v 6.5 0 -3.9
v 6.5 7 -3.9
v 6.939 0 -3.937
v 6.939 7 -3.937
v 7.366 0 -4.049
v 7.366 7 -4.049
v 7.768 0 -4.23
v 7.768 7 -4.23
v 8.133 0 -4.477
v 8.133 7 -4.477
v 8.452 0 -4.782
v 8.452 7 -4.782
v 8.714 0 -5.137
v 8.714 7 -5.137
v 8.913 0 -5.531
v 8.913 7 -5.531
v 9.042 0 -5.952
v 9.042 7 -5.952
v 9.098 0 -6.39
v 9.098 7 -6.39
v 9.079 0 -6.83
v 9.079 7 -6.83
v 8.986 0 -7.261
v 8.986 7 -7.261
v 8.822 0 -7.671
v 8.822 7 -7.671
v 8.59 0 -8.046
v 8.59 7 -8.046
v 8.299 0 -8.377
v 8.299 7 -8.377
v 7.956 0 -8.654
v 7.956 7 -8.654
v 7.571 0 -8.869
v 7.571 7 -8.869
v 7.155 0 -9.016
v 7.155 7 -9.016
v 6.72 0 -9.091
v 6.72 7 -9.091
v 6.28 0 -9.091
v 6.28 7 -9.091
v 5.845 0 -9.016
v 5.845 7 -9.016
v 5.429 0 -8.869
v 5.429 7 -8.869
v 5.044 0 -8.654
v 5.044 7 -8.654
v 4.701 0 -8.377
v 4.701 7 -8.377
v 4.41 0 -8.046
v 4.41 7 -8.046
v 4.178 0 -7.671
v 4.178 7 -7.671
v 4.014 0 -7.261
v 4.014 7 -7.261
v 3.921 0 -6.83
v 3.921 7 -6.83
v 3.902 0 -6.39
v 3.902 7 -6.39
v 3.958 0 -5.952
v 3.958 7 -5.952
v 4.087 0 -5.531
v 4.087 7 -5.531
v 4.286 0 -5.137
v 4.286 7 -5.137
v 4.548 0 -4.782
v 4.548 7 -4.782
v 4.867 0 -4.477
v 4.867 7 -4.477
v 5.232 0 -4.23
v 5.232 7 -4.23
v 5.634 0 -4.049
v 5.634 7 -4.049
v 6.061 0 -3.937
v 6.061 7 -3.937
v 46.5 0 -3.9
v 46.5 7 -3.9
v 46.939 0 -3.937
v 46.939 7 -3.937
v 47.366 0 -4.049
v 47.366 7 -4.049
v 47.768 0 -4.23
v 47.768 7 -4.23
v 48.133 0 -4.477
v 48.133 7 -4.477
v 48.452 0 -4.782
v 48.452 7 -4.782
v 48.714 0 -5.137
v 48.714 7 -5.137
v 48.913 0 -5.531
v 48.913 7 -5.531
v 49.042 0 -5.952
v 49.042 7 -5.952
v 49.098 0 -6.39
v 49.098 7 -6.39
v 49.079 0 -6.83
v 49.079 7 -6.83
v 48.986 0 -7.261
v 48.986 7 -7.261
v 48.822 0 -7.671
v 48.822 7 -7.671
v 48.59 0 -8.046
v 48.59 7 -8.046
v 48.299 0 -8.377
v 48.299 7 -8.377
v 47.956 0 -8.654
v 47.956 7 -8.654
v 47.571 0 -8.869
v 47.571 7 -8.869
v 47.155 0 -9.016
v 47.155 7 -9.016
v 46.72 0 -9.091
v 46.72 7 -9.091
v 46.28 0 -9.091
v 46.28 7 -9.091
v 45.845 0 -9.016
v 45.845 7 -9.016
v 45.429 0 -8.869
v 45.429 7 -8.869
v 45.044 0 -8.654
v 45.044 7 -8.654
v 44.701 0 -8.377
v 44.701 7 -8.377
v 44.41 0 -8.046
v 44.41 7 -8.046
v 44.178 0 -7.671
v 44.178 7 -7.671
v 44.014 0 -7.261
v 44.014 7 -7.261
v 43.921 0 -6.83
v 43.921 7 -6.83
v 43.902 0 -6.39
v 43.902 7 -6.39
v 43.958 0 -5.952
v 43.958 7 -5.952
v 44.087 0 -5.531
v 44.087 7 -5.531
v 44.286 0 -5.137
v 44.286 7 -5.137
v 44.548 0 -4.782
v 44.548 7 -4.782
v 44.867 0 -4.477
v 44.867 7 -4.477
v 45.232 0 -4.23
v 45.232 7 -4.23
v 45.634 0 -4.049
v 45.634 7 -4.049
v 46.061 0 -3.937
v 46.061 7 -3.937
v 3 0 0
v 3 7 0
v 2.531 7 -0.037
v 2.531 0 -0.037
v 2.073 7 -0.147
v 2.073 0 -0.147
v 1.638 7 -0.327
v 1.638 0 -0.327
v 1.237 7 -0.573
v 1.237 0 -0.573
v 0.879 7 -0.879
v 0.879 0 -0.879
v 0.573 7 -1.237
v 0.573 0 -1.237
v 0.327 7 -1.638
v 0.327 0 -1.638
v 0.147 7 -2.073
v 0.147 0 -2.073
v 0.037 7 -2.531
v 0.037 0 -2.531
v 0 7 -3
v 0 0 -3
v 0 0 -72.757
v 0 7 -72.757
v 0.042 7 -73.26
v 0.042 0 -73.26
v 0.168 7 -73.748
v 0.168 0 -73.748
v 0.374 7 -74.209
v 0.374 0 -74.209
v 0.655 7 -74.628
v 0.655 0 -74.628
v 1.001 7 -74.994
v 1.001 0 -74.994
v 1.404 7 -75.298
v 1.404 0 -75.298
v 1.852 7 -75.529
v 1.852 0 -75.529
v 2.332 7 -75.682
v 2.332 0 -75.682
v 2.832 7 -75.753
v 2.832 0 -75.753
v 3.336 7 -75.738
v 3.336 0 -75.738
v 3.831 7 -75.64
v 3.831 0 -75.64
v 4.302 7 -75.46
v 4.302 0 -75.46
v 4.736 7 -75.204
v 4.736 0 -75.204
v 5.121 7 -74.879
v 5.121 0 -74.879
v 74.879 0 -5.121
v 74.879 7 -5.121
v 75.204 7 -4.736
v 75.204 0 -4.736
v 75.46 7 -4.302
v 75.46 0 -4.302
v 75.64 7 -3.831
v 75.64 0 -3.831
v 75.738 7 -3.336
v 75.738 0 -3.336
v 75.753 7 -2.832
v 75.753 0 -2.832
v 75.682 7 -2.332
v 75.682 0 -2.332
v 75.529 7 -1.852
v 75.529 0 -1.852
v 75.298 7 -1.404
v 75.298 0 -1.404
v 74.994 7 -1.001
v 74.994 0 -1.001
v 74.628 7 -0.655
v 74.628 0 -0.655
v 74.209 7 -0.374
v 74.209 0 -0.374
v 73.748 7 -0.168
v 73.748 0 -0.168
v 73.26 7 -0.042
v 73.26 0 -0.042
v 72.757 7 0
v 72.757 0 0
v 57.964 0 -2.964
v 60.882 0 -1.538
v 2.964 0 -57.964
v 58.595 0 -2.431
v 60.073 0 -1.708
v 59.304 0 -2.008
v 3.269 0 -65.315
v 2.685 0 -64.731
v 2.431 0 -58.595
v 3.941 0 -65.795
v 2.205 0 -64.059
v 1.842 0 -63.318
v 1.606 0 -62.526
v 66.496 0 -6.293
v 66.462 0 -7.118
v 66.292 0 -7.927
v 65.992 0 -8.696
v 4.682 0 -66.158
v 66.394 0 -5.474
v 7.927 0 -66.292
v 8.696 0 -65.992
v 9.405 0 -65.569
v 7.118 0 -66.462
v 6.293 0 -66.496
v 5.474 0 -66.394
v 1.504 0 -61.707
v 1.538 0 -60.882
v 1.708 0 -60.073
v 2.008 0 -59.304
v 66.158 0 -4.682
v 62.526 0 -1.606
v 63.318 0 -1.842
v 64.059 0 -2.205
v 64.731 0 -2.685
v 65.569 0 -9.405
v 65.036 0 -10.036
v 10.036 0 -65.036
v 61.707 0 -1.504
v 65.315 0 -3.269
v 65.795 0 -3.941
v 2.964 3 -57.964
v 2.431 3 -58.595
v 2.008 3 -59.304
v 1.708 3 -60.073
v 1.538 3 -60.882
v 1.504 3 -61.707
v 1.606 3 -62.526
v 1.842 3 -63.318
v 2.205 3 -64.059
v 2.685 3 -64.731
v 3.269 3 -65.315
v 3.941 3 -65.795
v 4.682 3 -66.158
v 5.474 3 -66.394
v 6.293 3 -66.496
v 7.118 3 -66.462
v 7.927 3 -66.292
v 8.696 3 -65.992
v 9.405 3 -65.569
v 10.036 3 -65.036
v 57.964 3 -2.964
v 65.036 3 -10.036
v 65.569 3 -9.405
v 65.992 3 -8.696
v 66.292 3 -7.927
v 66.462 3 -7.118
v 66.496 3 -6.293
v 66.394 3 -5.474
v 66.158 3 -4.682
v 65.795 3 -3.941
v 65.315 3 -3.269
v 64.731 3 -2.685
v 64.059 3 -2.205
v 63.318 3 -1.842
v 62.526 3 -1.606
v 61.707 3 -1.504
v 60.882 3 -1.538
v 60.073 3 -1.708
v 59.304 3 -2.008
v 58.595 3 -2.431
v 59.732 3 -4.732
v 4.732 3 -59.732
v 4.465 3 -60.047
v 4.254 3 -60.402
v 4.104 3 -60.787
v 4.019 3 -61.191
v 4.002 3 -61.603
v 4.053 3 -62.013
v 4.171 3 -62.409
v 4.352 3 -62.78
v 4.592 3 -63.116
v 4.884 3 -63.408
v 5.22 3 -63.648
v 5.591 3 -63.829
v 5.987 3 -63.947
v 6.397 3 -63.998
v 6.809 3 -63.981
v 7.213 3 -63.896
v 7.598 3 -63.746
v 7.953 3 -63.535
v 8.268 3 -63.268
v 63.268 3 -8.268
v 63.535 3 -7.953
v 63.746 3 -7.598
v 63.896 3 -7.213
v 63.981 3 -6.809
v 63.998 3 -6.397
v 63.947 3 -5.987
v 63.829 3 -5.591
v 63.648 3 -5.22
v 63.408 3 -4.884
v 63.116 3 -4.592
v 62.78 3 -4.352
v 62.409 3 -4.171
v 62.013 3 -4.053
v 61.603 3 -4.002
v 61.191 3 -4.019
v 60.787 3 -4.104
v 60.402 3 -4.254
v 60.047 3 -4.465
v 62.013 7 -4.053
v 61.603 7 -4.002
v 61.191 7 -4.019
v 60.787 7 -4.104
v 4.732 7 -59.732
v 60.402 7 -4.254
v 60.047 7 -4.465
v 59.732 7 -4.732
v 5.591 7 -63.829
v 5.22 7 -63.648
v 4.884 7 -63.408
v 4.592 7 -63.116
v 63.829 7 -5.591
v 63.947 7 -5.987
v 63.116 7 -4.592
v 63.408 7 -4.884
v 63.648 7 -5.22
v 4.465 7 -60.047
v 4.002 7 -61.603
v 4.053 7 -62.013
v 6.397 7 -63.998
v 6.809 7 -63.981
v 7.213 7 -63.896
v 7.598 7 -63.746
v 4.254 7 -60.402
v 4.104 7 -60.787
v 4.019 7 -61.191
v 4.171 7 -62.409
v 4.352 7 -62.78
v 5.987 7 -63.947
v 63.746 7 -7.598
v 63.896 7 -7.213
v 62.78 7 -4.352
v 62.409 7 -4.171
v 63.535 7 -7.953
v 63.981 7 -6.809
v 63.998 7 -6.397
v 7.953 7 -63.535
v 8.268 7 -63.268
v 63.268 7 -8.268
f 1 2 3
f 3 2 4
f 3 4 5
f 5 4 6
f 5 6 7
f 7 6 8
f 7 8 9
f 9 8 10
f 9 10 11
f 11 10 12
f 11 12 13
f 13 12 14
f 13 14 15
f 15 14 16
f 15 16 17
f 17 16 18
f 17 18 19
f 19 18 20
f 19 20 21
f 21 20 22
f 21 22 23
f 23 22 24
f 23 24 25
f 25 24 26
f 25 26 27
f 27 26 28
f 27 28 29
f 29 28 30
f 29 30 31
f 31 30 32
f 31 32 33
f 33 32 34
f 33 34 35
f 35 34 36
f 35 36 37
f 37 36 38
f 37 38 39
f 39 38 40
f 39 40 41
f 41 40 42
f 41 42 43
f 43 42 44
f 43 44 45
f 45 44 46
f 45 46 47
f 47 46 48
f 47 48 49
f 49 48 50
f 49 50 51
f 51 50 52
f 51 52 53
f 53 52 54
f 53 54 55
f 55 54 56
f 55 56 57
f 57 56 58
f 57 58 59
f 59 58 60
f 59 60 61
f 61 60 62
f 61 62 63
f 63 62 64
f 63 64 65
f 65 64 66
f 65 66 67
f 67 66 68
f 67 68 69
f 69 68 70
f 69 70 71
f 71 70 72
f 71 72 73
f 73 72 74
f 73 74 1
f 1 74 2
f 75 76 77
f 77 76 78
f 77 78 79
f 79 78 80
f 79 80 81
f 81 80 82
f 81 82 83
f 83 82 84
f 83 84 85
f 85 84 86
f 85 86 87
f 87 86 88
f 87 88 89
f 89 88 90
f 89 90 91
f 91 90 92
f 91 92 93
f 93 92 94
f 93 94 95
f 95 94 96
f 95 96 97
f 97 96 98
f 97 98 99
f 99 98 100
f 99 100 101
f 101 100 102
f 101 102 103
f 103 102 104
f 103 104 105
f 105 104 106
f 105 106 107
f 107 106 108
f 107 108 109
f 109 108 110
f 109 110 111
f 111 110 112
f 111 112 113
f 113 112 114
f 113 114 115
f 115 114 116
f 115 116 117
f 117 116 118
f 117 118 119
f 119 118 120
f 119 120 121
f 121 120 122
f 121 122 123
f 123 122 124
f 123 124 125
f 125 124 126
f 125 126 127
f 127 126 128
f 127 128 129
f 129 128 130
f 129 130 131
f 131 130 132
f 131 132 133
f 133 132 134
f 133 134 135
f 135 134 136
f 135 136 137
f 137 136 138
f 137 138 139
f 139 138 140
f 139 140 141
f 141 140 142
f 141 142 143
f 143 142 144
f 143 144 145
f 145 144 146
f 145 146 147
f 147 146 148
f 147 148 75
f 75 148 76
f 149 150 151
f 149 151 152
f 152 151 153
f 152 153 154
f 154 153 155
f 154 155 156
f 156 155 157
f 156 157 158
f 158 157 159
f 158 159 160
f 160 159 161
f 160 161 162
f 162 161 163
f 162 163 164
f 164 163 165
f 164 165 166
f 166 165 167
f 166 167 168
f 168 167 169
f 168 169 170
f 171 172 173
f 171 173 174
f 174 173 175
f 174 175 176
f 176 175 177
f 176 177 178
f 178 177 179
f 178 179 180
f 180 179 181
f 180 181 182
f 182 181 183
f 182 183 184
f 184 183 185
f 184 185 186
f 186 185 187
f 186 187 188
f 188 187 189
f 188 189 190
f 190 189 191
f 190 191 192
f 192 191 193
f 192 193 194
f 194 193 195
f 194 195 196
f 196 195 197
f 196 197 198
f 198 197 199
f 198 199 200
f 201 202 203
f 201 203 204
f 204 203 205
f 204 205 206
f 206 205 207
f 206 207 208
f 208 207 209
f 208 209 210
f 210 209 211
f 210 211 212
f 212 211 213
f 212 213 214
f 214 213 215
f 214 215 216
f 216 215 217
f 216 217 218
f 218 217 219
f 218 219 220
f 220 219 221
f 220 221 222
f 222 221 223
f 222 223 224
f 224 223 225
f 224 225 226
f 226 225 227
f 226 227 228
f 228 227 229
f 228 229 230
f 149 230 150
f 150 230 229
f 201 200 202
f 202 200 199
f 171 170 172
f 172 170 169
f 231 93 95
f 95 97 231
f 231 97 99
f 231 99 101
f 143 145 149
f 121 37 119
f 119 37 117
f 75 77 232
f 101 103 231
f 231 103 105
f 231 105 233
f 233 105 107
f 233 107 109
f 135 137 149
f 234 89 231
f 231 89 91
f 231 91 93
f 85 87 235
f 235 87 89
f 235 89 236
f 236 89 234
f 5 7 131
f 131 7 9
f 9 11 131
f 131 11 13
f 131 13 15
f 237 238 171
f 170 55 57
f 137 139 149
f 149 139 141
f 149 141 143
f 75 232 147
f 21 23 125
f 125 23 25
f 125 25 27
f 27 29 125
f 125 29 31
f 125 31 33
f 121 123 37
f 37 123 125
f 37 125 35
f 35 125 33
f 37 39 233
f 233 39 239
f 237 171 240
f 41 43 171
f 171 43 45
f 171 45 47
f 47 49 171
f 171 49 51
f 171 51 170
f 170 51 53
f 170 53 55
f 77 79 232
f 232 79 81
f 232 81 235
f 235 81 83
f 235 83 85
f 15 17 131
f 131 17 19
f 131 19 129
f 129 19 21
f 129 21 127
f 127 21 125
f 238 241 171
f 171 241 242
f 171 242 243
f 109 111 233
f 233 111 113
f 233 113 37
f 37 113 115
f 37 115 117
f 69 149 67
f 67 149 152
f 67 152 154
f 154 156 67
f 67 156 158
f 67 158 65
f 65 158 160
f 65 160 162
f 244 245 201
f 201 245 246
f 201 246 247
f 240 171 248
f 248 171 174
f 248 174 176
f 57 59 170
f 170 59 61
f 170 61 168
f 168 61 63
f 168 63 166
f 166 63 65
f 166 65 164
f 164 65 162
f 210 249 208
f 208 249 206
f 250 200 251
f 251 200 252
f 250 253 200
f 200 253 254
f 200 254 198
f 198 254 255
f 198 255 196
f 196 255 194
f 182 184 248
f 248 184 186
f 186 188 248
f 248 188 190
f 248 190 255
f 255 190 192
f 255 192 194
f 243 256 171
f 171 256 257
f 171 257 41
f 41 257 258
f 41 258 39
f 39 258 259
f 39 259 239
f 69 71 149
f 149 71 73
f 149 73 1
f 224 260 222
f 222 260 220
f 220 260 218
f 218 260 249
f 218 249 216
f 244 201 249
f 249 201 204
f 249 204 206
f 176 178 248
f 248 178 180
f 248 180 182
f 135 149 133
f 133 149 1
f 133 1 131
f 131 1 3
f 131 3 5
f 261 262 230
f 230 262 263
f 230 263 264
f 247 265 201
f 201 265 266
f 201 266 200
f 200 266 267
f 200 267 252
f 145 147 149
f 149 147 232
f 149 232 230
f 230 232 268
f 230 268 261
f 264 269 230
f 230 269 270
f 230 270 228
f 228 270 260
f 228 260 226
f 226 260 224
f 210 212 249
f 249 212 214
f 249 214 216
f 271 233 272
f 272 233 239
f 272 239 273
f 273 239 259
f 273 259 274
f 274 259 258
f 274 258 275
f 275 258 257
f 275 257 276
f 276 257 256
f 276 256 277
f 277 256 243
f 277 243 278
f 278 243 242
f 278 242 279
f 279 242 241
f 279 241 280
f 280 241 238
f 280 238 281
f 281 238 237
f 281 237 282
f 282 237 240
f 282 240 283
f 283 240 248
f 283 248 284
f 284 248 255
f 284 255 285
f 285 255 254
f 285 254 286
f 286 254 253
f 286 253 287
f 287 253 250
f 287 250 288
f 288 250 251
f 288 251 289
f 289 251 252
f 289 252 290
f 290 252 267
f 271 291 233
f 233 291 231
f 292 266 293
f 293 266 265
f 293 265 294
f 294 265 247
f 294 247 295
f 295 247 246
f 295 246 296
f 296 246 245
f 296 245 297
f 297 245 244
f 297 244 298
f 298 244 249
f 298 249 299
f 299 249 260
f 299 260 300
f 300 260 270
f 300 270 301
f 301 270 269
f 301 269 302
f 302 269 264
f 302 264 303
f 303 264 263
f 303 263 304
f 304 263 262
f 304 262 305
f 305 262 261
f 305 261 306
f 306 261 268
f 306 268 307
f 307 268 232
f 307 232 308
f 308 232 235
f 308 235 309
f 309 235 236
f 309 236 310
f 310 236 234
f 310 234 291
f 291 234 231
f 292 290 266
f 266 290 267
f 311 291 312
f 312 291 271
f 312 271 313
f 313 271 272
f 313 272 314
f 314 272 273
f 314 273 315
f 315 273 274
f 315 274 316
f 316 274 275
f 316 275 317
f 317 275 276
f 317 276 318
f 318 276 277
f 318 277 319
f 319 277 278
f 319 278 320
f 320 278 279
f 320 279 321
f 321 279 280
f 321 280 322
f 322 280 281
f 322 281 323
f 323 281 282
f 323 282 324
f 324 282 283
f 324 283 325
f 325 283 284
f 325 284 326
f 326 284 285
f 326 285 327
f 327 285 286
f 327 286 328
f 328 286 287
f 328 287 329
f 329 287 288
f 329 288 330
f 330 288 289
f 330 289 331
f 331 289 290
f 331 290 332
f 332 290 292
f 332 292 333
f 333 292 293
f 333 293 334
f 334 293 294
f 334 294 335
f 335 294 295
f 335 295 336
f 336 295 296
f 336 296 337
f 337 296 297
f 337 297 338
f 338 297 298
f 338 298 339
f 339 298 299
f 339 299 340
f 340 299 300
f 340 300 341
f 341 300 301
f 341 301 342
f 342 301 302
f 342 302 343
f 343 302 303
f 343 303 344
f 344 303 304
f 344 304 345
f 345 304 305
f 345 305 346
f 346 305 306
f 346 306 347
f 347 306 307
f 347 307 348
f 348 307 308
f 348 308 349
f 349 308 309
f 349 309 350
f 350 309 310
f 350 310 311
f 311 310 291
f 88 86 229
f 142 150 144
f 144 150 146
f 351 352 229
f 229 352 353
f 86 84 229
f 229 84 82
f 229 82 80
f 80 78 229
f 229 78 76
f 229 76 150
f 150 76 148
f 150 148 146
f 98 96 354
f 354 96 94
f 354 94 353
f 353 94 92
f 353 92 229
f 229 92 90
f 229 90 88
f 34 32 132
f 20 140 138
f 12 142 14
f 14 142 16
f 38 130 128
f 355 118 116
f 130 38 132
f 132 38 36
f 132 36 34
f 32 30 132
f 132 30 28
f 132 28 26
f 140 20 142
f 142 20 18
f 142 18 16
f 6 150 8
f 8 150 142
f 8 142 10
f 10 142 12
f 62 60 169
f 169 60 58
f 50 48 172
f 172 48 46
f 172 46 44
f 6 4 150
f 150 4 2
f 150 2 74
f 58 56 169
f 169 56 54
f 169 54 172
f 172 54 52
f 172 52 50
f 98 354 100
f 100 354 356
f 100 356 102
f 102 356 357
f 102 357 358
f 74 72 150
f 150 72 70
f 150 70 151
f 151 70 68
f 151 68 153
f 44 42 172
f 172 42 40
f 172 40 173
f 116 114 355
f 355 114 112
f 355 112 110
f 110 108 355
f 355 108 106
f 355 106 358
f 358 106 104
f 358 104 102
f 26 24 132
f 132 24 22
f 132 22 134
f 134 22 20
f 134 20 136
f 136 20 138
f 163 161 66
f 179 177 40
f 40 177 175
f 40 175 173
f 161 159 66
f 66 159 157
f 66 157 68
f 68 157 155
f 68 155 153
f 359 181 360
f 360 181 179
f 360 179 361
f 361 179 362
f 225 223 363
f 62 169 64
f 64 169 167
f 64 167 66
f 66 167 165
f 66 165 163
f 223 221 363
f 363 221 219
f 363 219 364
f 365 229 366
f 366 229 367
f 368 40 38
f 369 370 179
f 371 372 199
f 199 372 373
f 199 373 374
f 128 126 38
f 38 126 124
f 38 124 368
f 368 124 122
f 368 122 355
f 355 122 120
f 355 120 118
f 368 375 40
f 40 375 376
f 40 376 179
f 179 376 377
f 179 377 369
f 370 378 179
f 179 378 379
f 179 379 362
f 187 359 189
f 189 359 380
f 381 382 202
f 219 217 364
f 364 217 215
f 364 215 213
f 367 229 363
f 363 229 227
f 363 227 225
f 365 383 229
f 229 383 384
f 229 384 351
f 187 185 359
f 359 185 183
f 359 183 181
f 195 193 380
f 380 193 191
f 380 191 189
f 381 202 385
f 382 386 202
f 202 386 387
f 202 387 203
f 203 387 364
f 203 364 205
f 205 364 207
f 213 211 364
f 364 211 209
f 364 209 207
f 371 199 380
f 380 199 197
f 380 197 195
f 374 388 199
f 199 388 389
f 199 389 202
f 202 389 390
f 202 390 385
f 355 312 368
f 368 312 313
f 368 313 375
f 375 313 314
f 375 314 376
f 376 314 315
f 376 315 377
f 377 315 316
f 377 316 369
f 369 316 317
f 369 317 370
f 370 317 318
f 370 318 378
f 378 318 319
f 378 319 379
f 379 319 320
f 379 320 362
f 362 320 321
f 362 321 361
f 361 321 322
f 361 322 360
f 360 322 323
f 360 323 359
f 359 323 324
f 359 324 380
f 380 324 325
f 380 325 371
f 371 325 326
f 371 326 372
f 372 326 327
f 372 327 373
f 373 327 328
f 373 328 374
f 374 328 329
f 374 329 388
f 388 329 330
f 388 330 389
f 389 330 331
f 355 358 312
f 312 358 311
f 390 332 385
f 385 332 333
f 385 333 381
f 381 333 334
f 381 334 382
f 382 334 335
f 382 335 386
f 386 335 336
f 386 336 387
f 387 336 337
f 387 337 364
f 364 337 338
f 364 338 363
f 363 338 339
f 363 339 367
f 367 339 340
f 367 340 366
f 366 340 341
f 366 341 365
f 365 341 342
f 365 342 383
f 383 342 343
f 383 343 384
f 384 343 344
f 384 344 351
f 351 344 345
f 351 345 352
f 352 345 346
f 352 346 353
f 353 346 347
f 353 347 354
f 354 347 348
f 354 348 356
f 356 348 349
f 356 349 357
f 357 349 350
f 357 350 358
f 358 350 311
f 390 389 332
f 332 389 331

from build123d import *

# Parameters (mm, degrees)
EXTRUDE_1_DEPTH      = 10
SKETCH_5_R           = 2.6
CUT_EXTRUDE_3_DEPTH  = 10
FILLET_5_R           = 3
FILLET_6_R           = 3
FILLET_7_R           = 3
SKETCH_7_R           = 5.5
CUT_EXTRUDE_4_DEPTH  = 5
SKETCH_12_R          = 2.553682631
CUT_EXTRUDE_9_DEPTH  = 9
EXTRUDE_2_DEPTH      = 5
CUT_EXTRUDE_START    = 5
SKETCH_14_R          = 5.5
CUT_EXTRUDE_12_DEPTH = 5
EXTRUDE_START        = 5
EXTRUDE_6_DEPTH      = 5
SKETCH_22_R          = 5.5
EXTRUDE_7_DEPTH      = 5
SKETCH_24_R          = 5.5
CUT_EXTRUDE_14_DEPTH = 3
SKETCH_25_R          = 2.65
CUT_EXTRUDE_15_DEPTH = 3
SKETCH_26_R          = 2.65
CUT_EXTRUDE_16_DEPTH = 5
SKETCH_29_R          = 2.65
EXTRUDE_8_DEPTH      = 10
EXTRUDE_START_2      = 3
SKETCH_30_R          = 5.5
EXTRUDE_9_DEPTH      = 3
CUT_EXTRUDE_18_DEPTH = 3
SKETCH_33_R          = 5.5
SKETCH_33_R_2        = 2.6
EXTRUDE_10_DEPTH     = 5
SKETCH_34_W          = 118.655960463
SKETCH_34_H          = 108.474675719
CUT_EXTRUDE_20_DEPTH = 3
CUT_EXTRUDE_21_DEPTH = 108.211729676


with BuildPart() as part:
    # 草图1 → 凸台-拉伸1 (new body)
    with BuildSketch(Plane(origin=(0, 0, 0), x_dir=(1, 0, 0), z_dir=(0, 1, 0))):
        Polygon((0, 0), (0, 80), (80, 0), align=None)
    extrude(amount=EXTRUDE_1_DEPTH)

    # 草图5 → 切除-拉伸3 (cut)
    with BuildSketch(Plane(origin=(0, 10, 0), x_dir=(1, 0, 0), z_dir=(0, 1, 0))):
        with Locations(Location((6.5, 6.5, 0), (0, 0, 270))):
            Circle(SKETCH_5_R)
        with Locations(Location((6.5, 46.5, 0), (0, 0, 270))):
            Circle(SKETCH_5_R)
        with Locations(Location((46.5, 6.5, 0), (0, 0, 270))):
            Circle(SKETCH_5_R)
    extrude(amount=-CUT_EXTRUDE_3_DEPTH, mode=Mode.SUBTRACT)

    # 圆角5
    fillet_5_edges = [part.edges().sort_by_distance(p)[0] for p in [
        (80, 5, 0),
    ]]
    fillet(fillet_5_edges, radius=FILLET_5_R)

    # 圆角6
    fillet_6_edges = [part.edges().sort_by_distance(p)[0] for p in [
        (0, 5, -80),
    ]]
    fillet(fillet_6_edges, radius=FILLET_6_R)

    # 圆角7
    fillet_7_edges = [part.edges().sort_by_distance(p)[0] for p in [
        (0, 5, 0),
    ]]
    fillet(fillet_7_edges, radius=FILLET_7_R)

    # 草图7 → 切除-拉伸4 (cut)
    with BuildSketch(Plane(origin=(0, 10, 0), x_dir=(1, 0, 0), z_dir=(0, 1, 0))):
        with Locations(Location((6.5, 6.5, 0), (0, 0, 270))):
            Circle(SKETCH_7_R)
        with Locations(Location((6.5, 46.5, 0), (0, 0, 270))):
            Circle(SKETCH_7_R)
        with Locations(Location((46.5, 6.5, 0), (0, 0, 270))):
            Circle(SKETCH_7_R)
    extrude(amount=-CUT_EXTRUDE_4_DEPTH, mode=Mode.SUBTRACT)

    # 草图12 → 切除-拉伸9 (cut)
    with BuildSketch(Plane.XZ):
        with Locations((8.5, -46.5)):
            Circle(SKETCH_12_R)
    extrude(amount=-CUT_EXTRUDE_9_DEPTH, mode=Mode.SUBTRACT)

    # 草图13 → 凸台-拉伸2 (add)
    with BuildSketch(Plane.XZ):
        with BuildLine():
            ThreePointArc((7.559676255, -48.87425488), (5.946317369, -46.5), (7.559676255, -44.12574512))
            ThreePointArc((7.559676255, -44.12574512), (3.9, -46.5), (7.559676255, -48.87425488))
        make_face()
    extrude(amount=-EXTRUDE_2_DEPTH)

    # 草图14 → 切除-拉伸12 (cut)
    with BuildSketch(Plane(origin=(0, 5, 0), x_dir=(1, 0, 0), z_dir=(0, 1, 0)).offset(CUT_EXTRUDE_START)):
        with Locations((8.5, 46.5)):
            Circle(SKETCH_14_R)
        with Locations((6.5, 46.5)):
            Circle(SKETCH_14_R)
    extrude(amount=-CUT_EXTRUDE_12_DEPTH, mode=Mode.SUBTRACT)

    # 草图21 → 凸台-拉伸6 (add)
    with BuildSketch(Plane(origin=(0, 5, 0), x_dir=(1, 0, 0), z_dir=(0, 1, 0)).offset(EXTRUDE_START)):
        with BuildLine():
            ThreePointArc((7.5, 41.091673087), (3, 46.5), (7.5, 51.908326913))
            ThreePointArc((7.5, 51.908326913), (1, 46.5), (7.5, 41.091673087))
        make_face()
    extrude(amount=-EXTRUDE_6_DEPTH)

    # 草图22 → 凸台-拉伸7 (add)
    with BuildSketch(Plane(origin=(0, 5, 0), x_dir=(1, 0, 0), z_dir=(0, 1, 0)).offset(EXTRUDE_START)):
        with Locations((8.5, 46.5)):
            Circle(SKETCH_22_R)
    extrude(amount=-EXTRUDE_7_DEPTH)

    # 草图24 → 切除-拉伸14 (cut)
    with BuildSketch(Plane(origin=(0, 10, 0), x_dir=(1, 0, 0), z_dir=(0, 1, 0))):
        with Locations(Location((8.5, 46.5, 0), (0, 0, 270))):
            Circle(SKETCH_24_R)
    extrude(amount=-CUT_EXTRUDE_14_DEPTH, mode=Mode.SUBTRACT)

    # 草图25 → 切除-拉伸15 (cut)
    with BuildSketch(Plane.XZ.offset(-5)):
        with Locations(Location((8.5, -46.5, 0), (0, 0, 270))):
            Circle(SKETCH_25_R)
    extrude(amount=-CUT_EXTRUDE_15_DEPTH, mode=Mode.SUBTRACT)

    # 草图26 → 切除-拉伸16 (cut)
    with BuildSketch(Plane.XZ):
        with Locations(Location((8.5, -46.5, 0), (0, 0, 270))):
            Circle(SKETCH_26_R)
    extrude(amount=-CUT_EXTRUDE_16_DEPTH, mode=Mode.SUBTRACT)

    # 草图29 → 凸台-拉伸8 (add)
    with BuildSketch(Plane.XZ):
        with Locations(Location((8.5, -46.5, 0), (0, 0, 270))):
            Circle(SKETCH_29_R)
    extrude(amount=-EXTRUDE_8_DEPTH)

    # 草图30 → 凸台-拉伸9 (add)
    with BuildSketch(Plane(origin=(0, 7, 0), x_dir=(1, 0, 0), z_dir=(0, 1, 0)).offset(EXTRUDE_START_2)):
        with Locations((8.5, 46.5)):
            Circle(SKETCH_30_R)
    extrude(amount=-EXTRUDE_9_DEPTH)

    # 草图2 → 切除-拉伸18 (cut)
    with BuildSketch(Plane.XZ):
        with BuildLine():
            ThreePointArc((6.5, -56.5), (8.413417162, -56.880602337), (10.035533906, -57.964466094))
            Line((10.035533906, -57.964466094), (57.964466094, -10.035533906))
            ThreePointArc((57.964466094, -10.035533906), (56.880602337, -8.413417162), (56.5, -6.5))
            Line((56.5, -6.5), (54.428932188, -6.5))
            Line((54.428932188, -6.5), (6.5, -54.428932188))
            Line((6.5, -54.428932188), (6.5, -56.5))
        make_face()
        with BuildLine():
            Line((57.964466094, -10.035533906), (10.035533906, -57.964466094))
            ThreePointArc((10.035533906, -57.964466094), (11.119397663, -59.586582838), (11.5, -61.5))
            ThreePointArc((11.5, -61.5), (11.119397663, -63.413417162), (10.035533906, -65.035533906))
            Line((10.035533906, -65.035533906), (65.035533906, -10.035533906))
            ThreePointArc((65.035533906, -10.035533906), (61.5, -11.5), (57.964466094, -10.035533906))
        make_face()
        with BuildLine():
            Line((6.5, -66.5), (6.5, -61.5))
            Line((6.5, -61.5), (6.5, -56.5))
            ThreePointArc((6.5, -56.5), (4.586582838, -56.880602337), (2.964466094, -57.964466094))
            ThreePointArc((2.964466094, -57.964466094), (1.880602337, -63.413417162), (6.5, -66.5))
        make_face()
        with BuildLine():
            Line((6.5, -56.5), (6.5, -61.5))
            Line((6.5, -61.5), (10.035533906, -57.964466094))
            ThreePointArc((10.035533906, -57.964466094), (8.413417162, -56.880602337), (6.5, -56.5))
        make_face()
        with BuildLine():
            Line((10.035533906, -57.964466094), (6.5, -61.5))
            Line((6.5, -61.5), (6.5, -66.5))
            ThreePointArc((6.5, -66.5), (8.413417162, -66.119397663), (10.035533906, -65.035533906))
            ThreePointArc((10.035533906, -65.035533906), (11.119397663, -63.413417162), (11.5, -61.5))
            ThreePointArc((11.5, -61.5), (11.119397663, -59.586582838), (10.035533906, -57.964466094))
        make_face()
        with BuildLine():
            Line((6.5, -56.5), (6.5, -61.5))
            Line((6.5, -61.5), (10.035533906, -57.964466094))
            ThreePointArc((10.035533906, -57.964466094), (8.413417162, -56.880602337), (6.5, -56.5))
        make_face()
        with BuildLine():
            Line((10.035533906, -57.964466094), (6.5, -61.5))
            Line((6.5, -61.5), (6.5, -66.5))
            ThreePointArc((6.5, -66.5), (8.413417162, -66.119397663), (10.035533906, -65.035533906))
            ThreePointArc((10.035533906, -65.035533906), (11.119397663, -63.413417162), (11.5, -61.5))
            ThreePointArc((11.5, -61.5), (11.119397663, -59.586582838), (10.035533906, -57.964466094))
        make_face()
        with BuildLine():
            ThreePointArc((2.964466094, -57.964466094), (4.586582838, -56.880602337), (6.5, -56.5))
            Line((6.5, -56.5), (6.5, -54.428932188))
            Line((6.5, -54.428932188), (2.964466094, -57.964466094))
        make_face()
        with BuildLine():
            Line((54.428932188, -6.5), (56.5, -6.5))
            ThreePointArc((56.5, -6.5), (56.880602337, -4.586582838), (57.964466094, -2.964466094))
            Line((57.964466094, -2.964466094), (54.428932188, -6.5))
        make_face()
        with BuildLine():
            Line((56.5, -6.5), (61.5, -6.5))
            Line((61.5, -6.5), (66.5, -6.5))
            ThreePointArc((66.5, -6.5), (63.413417162, -1.880602337), (57.964466094, -2.964466094))
            ThreePointArc((57.964466094, -2.964466094), (56.880602337, -4.586582838), (56.5, -6.5))
        make_face()
        with BuildLine():
            ThreePointArc((56.5, -6.5), (56.880602337, -8.413417162), (57.964466094, -10.035533906))
            Line((57.964466094, -10.035533906), (61.5, -6.5))
            Line((61.5, -6.5), (56.5, -6.5))
        make_face()
        with BuildLine():
            Line((61.5, -6.5), (57.964466094, -10.035533906))
            ThreePointArc((57.964466094, -10.035533906), (61.5, -11.5), (65.035533906, -10.035533906))
            ThreePointArc((65.035533906, -10.035533906), (66.119397663, -8.413417162), (66.5, -6.5))
            Line((66.5, -6.5), (61.5, -6.5))
        make_face()
        with BuildLine():
            ThreePointArc((56.5, -6.5), (56.880602337, -8.413417162), (57.964466094, -10.035533906))
            Line((57.964466094, -10.035533906), (61.5, -6.5))
            Line((61.5, -6.5), (56.5, -6.5))
        make_face()
        with BuildLine():
            Line((61.5, -6.5), (57.964466094, -10.035533906))
            ThreePointArc((57.964466094, -10.035533906), (61.5, -11.5), (65.035533906, -10.035533906))
            ThreePointArc((65.035533906, -10.035533906), (66.119397663, -8.413417162), (66.5, -6.5))
            Line((66.5, -6.5), (61.5, -6.5))
        make_face()
    extrude(amount=-CUT_EXTRUDE_18_DEPTH, mode=Mode.SUBTRACT)

    # 草图33 → 凸台-拉伸10 (add)
    # profile 1 of 2: a face of its own
    with BuildSketch(Plane(origin=(0, 10, 0), x_dir=(1, 0, 0), z_dir=(0, 1, 0))):
        with Locations((6.5, 6.5)):
            Circle(SKETCH_33_R)
        with Locations(Location((6.5, 6.5, 0), (0, 0, 270))):
            Circle(SKETCH_33_R_2, mode=Mode.SUBTRACT)
    # profile 2 of 2: a face of its own
    with BuildSketch(Plane(origin=(0, 10, 0), x_dir=(1, 0, 0), z_dir=(0, 1, 0))):
        with Locations((46.5, 6.5)):
            Circle(SKETCH_33_R)
        with Locations(Location((46.5, 6.5, 0), (0, 0, 270))):
            Circle(SKETCH_33_R_2, mode=Mode.SUBTRACT)
    extrude(amount=-EXTRUDE_10_DEPTH)

    # 草图34 → 切除-拉伸20 (cut)
    with BuildSketch(Plane(origin=(0, 10, 0), x_dir=(1, 0, 0), z_dir=(0, 1, 0))):
        with Locations((37.4387476, 33.290816779)):
            Rectangle(SKETCH_34_W, SKETCH_34_H)
    extrude(amount=-CUT_EXTRUDE_20_DEPTH, mode=Mode.SUBTRACT)

    # 草图35 → 切除-拉伸21 (cut, through all)
    with BuildSketch(Plane.XZ.offset(-3)):
        with BuildLine():
            Line((8.267766953, -63.267766953), (63.267766953, -8.267766953))
            ThreePointArc((63.267766953, -8.267766953), (63.267766953, -4.732233047), (59.732233047, -4.732233047))
            Line((59.732233047, -4.732233047), (4.732233047, -59.732233047))
            ThreePointArc((4.732233047, -59.732233047), (4.732233047, -63.267766953), (8.267766953, -63.267766953))
        make_face()
    extrude(amount=-CUT_EXTRUDE_21_DEPTH, mode=Mode.SUBTRACT)


solid = part.part
